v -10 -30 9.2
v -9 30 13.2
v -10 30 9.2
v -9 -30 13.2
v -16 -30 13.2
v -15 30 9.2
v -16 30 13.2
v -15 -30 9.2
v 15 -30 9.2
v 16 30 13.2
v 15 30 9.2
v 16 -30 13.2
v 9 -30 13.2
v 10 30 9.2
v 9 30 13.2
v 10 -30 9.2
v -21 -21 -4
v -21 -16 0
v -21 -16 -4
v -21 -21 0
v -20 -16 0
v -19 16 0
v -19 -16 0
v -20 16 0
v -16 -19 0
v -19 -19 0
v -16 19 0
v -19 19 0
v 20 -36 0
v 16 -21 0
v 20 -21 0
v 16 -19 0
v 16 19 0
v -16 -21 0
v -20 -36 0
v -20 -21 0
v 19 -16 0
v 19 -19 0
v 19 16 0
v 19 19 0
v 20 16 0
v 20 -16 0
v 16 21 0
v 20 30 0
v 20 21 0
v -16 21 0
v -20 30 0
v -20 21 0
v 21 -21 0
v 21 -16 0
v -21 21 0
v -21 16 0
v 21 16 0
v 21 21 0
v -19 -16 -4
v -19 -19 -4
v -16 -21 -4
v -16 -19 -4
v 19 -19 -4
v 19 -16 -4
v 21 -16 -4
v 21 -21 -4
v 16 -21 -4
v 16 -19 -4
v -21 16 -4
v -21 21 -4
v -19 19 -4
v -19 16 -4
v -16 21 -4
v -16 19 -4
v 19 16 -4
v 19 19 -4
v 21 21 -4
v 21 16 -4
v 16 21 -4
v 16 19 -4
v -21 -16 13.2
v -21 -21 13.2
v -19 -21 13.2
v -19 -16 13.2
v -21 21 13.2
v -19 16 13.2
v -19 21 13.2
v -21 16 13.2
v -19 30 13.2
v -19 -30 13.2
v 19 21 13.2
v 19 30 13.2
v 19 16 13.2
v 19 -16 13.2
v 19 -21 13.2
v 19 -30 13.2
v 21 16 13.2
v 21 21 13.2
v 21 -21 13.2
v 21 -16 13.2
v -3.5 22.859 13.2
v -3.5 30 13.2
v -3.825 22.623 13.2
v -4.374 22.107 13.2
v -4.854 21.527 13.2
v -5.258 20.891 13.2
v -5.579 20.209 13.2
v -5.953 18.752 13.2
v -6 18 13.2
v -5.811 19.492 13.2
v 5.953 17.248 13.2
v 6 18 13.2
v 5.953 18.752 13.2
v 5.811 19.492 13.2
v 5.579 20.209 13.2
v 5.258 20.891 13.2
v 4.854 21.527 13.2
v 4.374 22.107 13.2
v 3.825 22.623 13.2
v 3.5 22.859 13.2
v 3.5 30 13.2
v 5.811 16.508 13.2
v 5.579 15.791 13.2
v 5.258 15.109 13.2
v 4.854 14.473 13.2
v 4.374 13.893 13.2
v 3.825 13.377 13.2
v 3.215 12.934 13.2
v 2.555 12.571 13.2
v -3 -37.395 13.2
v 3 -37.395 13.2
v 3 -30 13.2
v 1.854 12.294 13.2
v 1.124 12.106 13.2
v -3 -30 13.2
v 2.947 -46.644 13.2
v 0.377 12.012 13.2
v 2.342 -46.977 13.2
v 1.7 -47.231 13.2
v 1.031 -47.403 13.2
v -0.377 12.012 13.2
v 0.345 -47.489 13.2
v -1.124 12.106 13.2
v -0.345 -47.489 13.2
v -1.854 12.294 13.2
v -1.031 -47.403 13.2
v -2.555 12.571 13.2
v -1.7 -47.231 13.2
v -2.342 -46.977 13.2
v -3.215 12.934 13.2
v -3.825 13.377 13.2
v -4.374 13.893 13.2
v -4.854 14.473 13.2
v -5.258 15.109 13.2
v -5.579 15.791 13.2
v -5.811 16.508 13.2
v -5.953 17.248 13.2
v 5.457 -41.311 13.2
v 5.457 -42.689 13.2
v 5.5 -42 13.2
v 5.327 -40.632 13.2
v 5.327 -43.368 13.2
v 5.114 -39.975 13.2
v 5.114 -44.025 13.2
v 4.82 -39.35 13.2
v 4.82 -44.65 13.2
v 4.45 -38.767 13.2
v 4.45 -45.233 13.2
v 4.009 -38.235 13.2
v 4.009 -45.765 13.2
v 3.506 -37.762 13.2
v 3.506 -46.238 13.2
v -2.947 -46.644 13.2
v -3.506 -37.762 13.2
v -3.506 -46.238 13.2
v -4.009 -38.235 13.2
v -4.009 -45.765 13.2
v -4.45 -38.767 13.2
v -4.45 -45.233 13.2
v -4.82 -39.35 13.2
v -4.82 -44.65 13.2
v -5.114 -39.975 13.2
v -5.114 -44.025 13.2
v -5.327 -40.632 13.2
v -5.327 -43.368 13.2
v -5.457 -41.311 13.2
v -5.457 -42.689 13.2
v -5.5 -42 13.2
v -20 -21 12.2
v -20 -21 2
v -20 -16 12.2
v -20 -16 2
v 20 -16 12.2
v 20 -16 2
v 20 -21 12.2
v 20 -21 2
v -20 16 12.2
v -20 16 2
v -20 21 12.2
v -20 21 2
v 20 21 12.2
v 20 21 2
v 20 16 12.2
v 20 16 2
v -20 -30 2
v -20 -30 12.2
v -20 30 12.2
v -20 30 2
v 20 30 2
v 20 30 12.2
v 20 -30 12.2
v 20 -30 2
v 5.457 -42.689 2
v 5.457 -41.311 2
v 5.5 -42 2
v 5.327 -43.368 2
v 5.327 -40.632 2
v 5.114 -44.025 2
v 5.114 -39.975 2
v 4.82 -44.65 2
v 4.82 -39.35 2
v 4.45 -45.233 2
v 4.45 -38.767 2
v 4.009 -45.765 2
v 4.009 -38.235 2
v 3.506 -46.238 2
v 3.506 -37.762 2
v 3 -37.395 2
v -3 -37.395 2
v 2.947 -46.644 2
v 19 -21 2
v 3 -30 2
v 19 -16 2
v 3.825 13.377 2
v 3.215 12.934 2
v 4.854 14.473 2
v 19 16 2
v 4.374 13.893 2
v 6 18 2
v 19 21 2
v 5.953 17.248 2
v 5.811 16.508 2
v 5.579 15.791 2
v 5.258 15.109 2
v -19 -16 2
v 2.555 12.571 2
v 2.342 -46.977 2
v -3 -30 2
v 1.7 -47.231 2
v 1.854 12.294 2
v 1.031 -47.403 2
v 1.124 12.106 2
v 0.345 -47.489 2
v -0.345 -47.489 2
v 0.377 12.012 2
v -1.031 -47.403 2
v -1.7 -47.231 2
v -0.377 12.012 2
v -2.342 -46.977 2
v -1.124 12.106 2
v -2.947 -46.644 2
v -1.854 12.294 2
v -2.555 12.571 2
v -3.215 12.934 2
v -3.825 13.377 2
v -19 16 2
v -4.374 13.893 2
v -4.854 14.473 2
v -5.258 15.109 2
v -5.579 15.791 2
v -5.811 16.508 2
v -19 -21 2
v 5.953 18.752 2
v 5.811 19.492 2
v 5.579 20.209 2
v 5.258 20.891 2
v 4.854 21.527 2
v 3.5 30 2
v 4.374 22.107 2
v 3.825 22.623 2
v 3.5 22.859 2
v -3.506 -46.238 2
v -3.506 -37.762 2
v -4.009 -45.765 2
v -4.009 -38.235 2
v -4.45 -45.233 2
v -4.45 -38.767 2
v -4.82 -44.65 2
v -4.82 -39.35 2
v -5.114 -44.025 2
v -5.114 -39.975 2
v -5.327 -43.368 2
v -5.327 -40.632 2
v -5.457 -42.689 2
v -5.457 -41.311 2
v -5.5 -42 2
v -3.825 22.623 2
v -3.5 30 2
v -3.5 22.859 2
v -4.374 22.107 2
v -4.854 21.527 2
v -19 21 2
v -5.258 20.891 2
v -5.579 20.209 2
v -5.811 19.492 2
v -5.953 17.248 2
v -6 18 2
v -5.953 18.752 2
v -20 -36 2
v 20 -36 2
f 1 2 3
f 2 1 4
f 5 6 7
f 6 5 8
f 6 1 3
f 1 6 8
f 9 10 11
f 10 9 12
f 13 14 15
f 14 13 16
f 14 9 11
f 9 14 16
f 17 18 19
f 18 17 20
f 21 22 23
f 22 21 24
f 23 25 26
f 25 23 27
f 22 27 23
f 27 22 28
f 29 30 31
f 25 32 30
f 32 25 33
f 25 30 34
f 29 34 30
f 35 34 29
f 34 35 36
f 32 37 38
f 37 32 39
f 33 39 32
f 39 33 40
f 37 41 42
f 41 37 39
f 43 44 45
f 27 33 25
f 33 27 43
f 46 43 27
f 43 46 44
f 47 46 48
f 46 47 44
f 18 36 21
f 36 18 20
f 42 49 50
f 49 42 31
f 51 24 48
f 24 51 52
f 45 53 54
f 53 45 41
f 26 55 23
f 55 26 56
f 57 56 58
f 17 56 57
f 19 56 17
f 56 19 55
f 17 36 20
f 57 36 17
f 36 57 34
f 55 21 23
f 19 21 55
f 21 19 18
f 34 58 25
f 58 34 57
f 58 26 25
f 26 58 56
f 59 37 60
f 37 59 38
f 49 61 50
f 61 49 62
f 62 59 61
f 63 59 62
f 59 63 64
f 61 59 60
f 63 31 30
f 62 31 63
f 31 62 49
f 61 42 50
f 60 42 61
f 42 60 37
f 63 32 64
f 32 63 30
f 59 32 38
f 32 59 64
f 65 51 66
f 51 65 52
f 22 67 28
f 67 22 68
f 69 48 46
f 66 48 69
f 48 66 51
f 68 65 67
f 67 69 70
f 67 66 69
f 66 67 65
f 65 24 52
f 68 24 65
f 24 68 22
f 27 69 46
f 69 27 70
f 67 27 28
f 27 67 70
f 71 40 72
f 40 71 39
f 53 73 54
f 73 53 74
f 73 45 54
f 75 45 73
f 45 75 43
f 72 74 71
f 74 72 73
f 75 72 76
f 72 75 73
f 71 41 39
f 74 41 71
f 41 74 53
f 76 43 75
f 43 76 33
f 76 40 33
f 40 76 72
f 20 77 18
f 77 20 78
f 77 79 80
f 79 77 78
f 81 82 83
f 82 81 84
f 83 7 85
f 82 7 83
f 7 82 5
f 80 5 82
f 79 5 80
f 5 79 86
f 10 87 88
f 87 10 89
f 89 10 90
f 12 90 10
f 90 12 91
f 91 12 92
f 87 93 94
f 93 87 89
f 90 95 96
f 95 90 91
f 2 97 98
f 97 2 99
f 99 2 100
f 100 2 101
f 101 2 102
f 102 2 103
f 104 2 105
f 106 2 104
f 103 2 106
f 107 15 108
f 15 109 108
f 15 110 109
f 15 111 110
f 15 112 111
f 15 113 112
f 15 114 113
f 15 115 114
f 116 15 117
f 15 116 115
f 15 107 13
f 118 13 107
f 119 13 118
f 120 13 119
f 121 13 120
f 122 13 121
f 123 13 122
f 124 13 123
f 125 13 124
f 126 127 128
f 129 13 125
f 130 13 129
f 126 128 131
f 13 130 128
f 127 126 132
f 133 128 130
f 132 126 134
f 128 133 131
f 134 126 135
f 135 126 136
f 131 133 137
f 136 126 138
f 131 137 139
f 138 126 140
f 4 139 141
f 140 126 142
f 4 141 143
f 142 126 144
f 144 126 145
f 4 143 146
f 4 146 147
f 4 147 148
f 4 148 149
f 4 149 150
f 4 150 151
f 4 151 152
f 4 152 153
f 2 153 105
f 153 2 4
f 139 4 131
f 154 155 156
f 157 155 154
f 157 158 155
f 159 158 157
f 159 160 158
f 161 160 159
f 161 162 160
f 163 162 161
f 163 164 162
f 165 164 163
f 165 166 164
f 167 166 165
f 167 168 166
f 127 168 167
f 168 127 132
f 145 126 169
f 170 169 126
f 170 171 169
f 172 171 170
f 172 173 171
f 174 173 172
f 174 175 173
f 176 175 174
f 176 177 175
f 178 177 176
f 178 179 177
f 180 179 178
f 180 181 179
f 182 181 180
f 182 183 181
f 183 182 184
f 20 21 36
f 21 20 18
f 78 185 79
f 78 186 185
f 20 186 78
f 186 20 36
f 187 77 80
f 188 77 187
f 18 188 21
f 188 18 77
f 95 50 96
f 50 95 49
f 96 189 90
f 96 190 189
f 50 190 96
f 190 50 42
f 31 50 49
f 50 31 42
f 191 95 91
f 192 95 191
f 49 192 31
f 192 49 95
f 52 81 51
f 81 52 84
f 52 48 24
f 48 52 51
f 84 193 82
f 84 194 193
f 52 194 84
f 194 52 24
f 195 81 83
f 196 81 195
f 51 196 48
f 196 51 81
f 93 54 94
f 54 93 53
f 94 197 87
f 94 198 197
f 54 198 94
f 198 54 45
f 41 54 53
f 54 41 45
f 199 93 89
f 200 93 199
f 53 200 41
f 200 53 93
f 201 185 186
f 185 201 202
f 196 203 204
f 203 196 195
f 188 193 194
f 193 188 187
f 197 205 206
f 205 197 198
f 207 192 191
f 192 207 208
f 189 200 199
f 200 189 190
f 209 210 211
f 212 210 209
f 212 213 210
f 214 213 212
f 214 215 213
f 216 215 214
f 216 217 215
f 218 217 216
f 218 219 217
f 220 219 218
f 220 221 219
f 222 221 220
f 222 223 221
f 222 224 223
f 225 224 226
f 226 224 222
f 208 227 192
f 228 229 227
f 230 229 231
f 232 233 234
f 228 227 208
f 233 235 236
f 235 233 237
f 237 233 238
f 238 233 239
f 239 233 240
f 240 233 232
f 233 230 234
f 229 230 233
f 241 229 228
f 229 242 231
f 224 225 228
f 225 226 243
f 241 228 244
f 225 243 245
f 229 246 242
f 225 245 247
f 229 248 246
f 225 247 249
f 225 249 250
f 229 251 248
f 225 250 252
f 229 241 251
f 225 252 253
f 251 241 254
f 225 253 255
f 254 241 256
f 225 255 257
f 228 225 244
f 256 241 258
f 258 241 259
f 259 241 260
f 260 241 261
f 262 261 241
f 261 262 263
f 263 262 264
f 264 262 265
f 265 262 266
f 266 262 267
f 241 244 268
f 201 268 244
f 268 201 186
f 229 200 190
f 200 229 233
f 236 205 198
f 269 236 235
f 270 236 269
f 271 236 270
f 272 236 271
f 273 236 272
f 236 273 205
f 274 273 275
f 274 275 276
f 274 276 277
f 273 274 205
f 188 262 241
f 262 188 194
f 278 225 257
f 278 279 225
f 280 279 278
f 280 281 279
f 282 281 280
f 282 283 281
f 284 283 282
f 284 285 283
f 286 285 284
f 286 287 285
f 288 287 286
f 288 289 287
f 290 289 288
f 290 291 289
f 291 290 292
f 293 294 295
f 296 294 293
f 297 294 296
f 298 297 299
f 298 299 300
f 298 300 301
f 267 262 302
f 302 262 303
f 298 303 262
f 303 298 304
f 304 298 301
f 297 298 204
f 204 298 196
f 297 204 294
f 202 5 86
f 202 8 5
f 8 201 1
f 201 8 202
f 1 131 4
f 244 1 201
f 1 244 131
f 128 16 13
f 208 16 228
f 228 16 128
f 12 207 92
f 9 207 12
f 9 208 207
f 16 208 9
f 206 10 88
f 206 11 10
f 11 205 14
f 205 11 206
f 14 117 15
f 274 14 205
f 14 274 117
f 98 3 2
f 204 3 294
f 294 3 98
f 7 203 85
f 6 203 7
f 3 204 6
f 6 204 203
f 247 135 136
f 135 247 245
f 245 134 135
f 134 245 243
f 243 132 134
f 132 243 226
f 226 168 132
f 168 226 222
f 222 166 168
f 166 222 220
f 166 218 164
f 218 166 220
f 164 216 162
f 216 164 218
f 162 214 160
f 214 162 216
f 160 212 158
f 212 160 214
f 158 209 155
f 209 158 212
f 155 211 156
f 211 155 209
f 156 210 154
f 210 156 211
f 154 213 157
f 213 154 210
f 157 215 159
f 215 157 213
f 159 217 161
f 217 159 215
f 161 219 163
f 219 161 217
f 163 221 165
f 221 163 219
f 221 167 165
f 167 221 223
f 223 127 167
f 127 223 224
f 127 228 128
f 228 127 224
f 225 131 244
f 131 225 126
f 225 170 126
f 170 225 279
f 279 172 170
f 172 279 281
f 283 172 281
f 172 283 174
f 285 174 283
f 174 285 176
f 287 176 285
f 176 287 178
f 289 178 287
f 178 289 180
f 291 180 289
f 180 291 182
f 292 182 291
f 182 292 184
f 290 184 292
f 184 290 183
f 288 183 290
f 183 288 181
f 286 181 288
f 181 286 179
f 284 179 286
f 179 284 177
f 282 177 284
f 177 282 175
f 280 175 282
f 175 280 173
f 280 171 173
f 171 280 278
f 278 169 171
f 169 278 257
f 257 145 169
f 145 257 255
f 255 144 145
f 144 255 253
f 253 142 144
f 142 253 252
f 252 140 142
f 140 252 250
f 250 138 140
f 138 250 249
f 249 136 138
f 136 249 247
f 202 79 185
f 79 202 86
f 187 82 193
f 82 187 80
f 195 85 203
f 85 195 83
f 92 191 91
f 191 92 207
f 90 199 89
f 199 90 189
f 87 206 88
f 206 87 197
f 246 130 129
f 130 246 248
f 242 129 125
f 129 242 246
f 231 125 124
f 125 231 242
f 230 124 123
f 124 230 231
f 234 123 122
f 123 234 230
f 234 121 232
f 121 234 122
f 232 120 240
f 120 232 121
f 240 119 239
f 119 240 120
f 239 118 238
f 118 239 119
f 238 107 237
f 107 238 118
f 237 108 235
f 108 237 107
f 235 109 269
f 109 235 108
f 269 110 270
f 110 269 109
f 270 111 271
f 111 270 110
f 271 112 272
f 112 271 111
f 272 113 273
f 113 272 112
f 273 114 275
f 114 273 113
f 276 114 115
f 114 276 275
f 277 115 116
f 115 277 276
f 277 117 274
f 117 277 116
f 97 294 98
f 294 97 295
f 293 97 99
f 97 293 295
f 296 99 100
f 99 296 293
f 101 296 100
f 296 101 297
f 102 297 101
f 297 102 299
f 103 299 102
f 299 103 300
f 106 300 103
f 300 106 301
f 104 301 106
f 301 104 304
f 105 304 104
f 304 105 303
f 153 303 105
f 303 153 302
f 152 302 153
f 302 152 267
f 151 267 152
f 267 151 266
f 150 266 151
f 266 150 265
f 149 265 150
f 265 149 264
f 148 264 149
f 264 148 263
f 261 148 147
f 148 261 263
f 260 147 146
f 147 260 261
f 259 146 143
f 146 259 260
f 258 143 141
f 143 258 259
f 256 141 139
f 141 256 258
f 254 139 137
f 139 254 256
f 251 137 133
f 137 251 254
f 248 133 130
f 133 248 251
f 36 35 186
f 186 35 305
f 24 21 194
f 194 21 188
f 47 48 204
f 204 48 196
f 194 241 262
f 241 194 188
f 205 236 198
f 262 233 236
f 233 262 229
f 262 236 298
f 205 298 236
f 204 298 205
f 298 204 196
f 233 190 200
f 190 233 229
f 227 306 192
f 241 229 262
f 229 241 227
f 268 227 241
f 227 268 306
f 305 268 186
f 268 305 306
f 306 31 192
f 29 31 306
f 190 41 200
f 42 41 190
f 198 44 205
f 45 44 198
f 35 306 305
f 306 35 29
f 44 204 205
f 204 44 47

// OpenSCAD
$fn = 50;

baseHeight = 2;
baseSupport = 6;

trackChamfer = 1;
trackWidth = 40;
trackHeight = 11.2;

topTrackLength = 60;
topTrackLinkLength = 8;
topTrackLinkOffset = 20;
topTrackLinkWidth = 2;
topTrackLinkDepth = 4;

linkOffset = 12;
linkWidth = 6;
linkSize = 11;

railWidth = 7;
railOffset = 4;
railDepth = 4;

union() {
  difference() {
    renderTopTrack();
    renderTopRails();
  }

  renderTopBase();
  renderTopTrackLinks();
  renderTopGrips();
}

module renderTopBase() {
  translate([0, -baseSupport / 2, baseHeight / 2]) {
    cube([trackWidth, topTrackLength + baseSupport, baseHeight], center=true);
  }
}

module renderTopTrack() {
  translate([0, 0, trackHeight / 2 + baseHeight]) {
    difference() {
      union() {
        cube([trackWidth, topTrackLength, trackHeight], center=true);
        renderTopMaleLink();
      }
      renderTopFemaleLink();
      renderTopChamfers();
    }
  }
}

module renderTopChamfers() {
  union() {
    translate([-trackWidth / 2, topTrackLength / 2, trackHeight / 2]) {
      rotate([90, 0, 0]) {
        linear_extrude(topTrackLength + 1) {
          polygon(
            [
              [0, 0],
              [trackChamfer, 0],
              [0, -trackChamfer],
            ]
          );
        }
      }
    }
    translate([trackWidth / 2, topTrackLength / 2, trackHeight / 2]) {
      rotate([90, 0, 0]) {
        linear_extrude(topTrackLength + 1) {
          polygon(
            [
              [-trackChamfer, 0],
              [0, 0],
              [0, -trackChamfer],
            ]
          );
        }
      }
    }
  }
}

module renderTopFemaleLink() {
  translate([0, topTrackLength / 2 - linkOffset, -trackHeight / 2 - .5]) {
    linear_extrude(trackHeight + 1) {
      circle(d=linkSize + 1);
      translate([0, linkOffset / 2, 0]) {
        square([linkWidth + 1, linkOffset + 1], center=true);
      }
    }
  }
}

module renderTopMaleLink() {
  translate([0, -topTrackLength / 2 - linkOffset, -trackHeight / 2]) {
    linear_extrude(trackHeight) {
      circle(d=linkSize);
      translate([0, linkOffset / 2, 0]) {
        square([linkWidth, linkOffset], center=true);
      }
    }
  }
}

module renderTopGrips() {
  translate([0, 0, trackHeight / 2 + baseHeight]) {
    for (y = [-1:1]) {
      if (y != 0) {
        for (x = [-1:1]) {
          if (x != 0) {
            translate([x * trackWidth / 2, y * (topTrackLinkOffset - topTrackLinkLength / 4 + topTrackLinkWidth / 4), -baseHeight / 2]) {
              cube([topTrackLinkWidth, topTrackLinkLength / 2 + topTrackLinkWidth / 2, baseHeight + trackHeight], center=true);
            }
          }
        }
      }
    }
  }
}

module renderTopTrackLinks() {
  union() {
    for (y = [-1:1]) {
      if (y != 0) {
        for (x = [-1:1]) {
          if (x != 0) {
            translate([x * trackWidth / 2, y * (topTrackLinkOffset - topTrackLinkLength / 4 + topTrackLinkWidth / 4), -topTrackLinkDepth / 2]) {
              cube([topTrackLinkWidth, topTrackLinkLength / 2 + topTrackLinkWidth / 2, topTrackLinkDepth], center=true);
            }

            translate([x * (trackWidth - topTrackLinkLength / 2) / 2, y * topTrackLinkOffset, -topTrackLinkDepth / 2]) {
              cube([topTrackLinkLength / 2, topTrackLinkWidth, topTrackLinkDepth], center=true);
            }
          }
        }
      }
    }
  }
}

module renderTopRails() {
  union() {
    translate([-(trackWidth - railWidth) / 2 + railOffset, 0, trackHeight - railDepth]) {
      renderTopRail();
    }
    translate([(trackWidth - railWidth) / 2 - railOffset, 0, trackHeight - railDepth]) {
      renderTopRail();
    }
  }
}

module renderTopRail() {
  translate([0, topTrackLength / 2 + .5, railDepth * 1.5]) {
    rotate([90, 0, 0]) {
      linear_extrude(topTrackLength + 1) {
        polygon(
          [
            [-railWidth / 2 - 1, railDepth],
            [-railWidth / 2 + 1, -railDepth],
            [railWidth / 2 - 1, -railDepth],
            [railWidth / 2 + 1, railDepth],
          ]
        );
      }
    }
  }
}
